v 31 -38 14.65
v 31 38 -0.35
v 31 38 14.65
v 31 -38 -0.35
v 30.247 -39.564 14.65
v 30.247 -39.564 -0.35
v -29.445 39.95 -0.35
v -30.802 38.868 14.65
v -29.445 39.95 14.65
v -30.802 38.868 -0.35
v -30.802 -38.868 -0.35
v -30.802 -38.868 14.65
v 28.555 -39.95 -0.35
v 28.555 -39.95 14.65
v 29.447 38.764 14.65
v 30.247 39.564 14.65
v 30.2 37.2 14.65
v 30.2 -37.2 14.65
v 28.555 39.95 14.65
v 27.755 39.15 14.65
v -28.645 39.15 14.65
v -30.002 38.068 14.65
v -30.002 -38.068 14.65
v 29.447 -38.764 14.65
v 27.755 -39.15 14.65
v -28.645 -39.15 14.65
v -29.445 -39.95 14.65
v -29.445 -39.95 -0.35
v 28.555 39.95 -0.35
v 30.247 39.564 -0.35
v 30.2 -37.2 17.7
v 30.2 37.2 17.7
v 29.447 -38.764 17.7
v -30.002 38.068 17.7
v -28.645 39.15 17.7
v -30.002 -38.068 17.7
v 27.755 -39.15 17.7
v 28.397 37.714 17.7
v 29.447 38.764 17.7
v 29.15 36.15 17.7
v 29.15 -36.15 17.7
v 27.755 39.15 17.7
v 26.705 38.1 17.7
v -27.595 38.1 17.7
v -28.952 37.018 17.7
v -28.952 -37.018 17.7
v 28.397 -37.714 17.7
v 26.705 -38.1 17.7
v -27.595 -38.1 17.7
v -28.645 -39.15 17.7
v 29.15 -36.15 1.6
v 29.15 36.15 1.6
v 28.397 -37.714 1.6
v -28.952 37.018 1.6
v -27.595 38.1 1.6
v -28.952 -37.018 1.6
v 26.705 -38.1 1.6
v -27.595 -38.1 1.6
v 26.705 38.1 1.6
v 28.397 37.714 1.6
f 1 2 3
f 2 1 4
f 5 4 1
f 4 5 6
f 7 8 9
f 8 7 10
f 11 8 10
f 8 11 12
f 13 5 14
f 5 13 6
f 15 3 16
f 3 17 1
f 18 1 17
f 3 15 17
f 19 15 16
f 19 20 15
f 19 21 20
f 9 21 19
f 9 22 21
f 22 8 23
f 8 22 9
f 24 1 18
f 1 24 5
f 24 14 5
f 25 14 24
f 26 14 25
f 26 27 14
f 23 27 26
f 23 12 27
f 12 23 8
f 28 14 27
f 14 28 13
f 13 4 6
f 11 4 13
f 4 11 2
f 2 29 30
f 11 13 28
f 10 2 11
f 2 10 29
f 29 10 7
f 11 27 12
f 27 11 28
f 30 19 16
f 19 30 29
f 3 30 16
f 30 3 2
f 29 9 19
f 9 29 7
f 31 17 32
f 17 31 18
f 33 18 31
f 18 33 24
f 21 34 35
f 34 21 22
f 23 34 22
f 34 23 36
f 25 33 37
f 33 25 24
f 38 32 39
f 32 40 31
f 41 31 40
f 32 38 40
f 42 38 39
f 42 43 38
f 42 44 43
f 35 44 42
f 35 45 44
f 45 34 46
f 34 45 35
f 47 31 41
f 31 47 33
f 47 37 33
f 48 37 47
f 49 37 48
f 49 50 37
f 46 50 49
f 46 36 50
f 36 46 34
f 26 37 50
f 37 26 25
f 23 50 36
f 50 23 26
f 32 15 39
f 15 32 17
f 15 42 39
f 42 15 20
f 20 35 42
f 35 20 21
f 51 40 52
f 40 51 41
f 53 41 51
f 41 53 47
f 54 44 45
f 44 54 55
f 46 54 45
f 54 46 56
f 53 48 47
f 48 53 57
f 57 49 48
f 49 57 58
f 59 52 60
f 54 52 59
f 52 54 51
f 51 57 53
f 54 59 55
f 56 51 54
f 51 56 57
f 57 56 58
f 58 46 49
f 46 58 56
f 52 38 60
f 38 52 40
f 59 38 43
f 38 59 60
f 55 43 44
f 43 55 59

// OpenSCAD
// http://www.thingiverse.com/thing:213934

// ================ variables
//use <write/Write.scad>

//CUSTOMIZER VARIABLES

/* [Main] */

// in mm
x_width=62;

// in mm
y_width=80;

// in mm
height=20/2;

// Wall thickness in mm
thickness=1.6; // [1:10]

// Corner roundover in mm (0=sharp corner)
radius=2; // [0:50]

// Generate the box
do_box=1; // [0:no,1:yes]

// Generate a lid
do_lid=0; // [0:no,1:yes]

// height in mm
lid_thickness=3;

//CUSTOMIZER VARIABLES END

// Screw pilot hole size
screw_pilot=1.125*1;

// Screw hole size
screw_hole=2.5*1;

// Whether you want the screw countersunk
screw_countersink=0*1;

text="";
textSize=14;
textThickness=2;

// =============== calculated variables
lid_height=min(height/4,lid_thickness);
corner_radius=min(radius,x_width/2,y_width/2);
xadj=x_width-(corner_radius*2);
yadj=y_width-(corner_radius*2);
snugfit=0.5/2;

// =============== program

// ---- The box
if(do_box==1) translate([-((x_width/2+1)*do_lid),0,height/2-thickness]) difference() {

union() {
minkowski() // main body
{
 cube([xadj,yadj,height-lid_height],center=true);
 cylinder(r=corner_radius,h=height-lid_height);
}

translate([0,0,lid_height-thickness]) minkowski() // main body overlap
{
 cube([xadj-thickness,yadj-thickness,height-(thickness*2)],center=true);
 cylinder(r=corner_radius,h=height);
}
}

translate([0,0,thickness*2]) minkowski() // inside area
{
 cube([xadj-((thickness+snugfit)*2),yadj-((thickness+snugfit)*2),height],center=true);
 cylinder(r=corner_radius,h=height);
}

};

// ---- The lid
if(do_lid==1) translate([(x_width/2+1)*do_box,0,lid_height/2]) {

#difference() {
	minkowski() // main body
	{
 		cube([xadj,yadj,lid_height],center=true);
 		cylinder(r=corner_radius,h=lid_height);
	}

	translate([0,0,thickness]) minkowski() // inside area
	{
 		cube([xadj-(thickness-snugfit),yadj-(thickness-snugfit),lid_height],center=true);
 		cylinder(r=corner_radius,h=lid_height);

	}

   translate([0,0,-thickness+0.3])
   	writecube(text=text,
			  where=[y_width/2,
			  x_width/2-textSize/4,
			  lid_thickness],
			  size=[l,w,h],
			  face="top",
			  t=textThickness,
			  h=textSize);

}


	

};
